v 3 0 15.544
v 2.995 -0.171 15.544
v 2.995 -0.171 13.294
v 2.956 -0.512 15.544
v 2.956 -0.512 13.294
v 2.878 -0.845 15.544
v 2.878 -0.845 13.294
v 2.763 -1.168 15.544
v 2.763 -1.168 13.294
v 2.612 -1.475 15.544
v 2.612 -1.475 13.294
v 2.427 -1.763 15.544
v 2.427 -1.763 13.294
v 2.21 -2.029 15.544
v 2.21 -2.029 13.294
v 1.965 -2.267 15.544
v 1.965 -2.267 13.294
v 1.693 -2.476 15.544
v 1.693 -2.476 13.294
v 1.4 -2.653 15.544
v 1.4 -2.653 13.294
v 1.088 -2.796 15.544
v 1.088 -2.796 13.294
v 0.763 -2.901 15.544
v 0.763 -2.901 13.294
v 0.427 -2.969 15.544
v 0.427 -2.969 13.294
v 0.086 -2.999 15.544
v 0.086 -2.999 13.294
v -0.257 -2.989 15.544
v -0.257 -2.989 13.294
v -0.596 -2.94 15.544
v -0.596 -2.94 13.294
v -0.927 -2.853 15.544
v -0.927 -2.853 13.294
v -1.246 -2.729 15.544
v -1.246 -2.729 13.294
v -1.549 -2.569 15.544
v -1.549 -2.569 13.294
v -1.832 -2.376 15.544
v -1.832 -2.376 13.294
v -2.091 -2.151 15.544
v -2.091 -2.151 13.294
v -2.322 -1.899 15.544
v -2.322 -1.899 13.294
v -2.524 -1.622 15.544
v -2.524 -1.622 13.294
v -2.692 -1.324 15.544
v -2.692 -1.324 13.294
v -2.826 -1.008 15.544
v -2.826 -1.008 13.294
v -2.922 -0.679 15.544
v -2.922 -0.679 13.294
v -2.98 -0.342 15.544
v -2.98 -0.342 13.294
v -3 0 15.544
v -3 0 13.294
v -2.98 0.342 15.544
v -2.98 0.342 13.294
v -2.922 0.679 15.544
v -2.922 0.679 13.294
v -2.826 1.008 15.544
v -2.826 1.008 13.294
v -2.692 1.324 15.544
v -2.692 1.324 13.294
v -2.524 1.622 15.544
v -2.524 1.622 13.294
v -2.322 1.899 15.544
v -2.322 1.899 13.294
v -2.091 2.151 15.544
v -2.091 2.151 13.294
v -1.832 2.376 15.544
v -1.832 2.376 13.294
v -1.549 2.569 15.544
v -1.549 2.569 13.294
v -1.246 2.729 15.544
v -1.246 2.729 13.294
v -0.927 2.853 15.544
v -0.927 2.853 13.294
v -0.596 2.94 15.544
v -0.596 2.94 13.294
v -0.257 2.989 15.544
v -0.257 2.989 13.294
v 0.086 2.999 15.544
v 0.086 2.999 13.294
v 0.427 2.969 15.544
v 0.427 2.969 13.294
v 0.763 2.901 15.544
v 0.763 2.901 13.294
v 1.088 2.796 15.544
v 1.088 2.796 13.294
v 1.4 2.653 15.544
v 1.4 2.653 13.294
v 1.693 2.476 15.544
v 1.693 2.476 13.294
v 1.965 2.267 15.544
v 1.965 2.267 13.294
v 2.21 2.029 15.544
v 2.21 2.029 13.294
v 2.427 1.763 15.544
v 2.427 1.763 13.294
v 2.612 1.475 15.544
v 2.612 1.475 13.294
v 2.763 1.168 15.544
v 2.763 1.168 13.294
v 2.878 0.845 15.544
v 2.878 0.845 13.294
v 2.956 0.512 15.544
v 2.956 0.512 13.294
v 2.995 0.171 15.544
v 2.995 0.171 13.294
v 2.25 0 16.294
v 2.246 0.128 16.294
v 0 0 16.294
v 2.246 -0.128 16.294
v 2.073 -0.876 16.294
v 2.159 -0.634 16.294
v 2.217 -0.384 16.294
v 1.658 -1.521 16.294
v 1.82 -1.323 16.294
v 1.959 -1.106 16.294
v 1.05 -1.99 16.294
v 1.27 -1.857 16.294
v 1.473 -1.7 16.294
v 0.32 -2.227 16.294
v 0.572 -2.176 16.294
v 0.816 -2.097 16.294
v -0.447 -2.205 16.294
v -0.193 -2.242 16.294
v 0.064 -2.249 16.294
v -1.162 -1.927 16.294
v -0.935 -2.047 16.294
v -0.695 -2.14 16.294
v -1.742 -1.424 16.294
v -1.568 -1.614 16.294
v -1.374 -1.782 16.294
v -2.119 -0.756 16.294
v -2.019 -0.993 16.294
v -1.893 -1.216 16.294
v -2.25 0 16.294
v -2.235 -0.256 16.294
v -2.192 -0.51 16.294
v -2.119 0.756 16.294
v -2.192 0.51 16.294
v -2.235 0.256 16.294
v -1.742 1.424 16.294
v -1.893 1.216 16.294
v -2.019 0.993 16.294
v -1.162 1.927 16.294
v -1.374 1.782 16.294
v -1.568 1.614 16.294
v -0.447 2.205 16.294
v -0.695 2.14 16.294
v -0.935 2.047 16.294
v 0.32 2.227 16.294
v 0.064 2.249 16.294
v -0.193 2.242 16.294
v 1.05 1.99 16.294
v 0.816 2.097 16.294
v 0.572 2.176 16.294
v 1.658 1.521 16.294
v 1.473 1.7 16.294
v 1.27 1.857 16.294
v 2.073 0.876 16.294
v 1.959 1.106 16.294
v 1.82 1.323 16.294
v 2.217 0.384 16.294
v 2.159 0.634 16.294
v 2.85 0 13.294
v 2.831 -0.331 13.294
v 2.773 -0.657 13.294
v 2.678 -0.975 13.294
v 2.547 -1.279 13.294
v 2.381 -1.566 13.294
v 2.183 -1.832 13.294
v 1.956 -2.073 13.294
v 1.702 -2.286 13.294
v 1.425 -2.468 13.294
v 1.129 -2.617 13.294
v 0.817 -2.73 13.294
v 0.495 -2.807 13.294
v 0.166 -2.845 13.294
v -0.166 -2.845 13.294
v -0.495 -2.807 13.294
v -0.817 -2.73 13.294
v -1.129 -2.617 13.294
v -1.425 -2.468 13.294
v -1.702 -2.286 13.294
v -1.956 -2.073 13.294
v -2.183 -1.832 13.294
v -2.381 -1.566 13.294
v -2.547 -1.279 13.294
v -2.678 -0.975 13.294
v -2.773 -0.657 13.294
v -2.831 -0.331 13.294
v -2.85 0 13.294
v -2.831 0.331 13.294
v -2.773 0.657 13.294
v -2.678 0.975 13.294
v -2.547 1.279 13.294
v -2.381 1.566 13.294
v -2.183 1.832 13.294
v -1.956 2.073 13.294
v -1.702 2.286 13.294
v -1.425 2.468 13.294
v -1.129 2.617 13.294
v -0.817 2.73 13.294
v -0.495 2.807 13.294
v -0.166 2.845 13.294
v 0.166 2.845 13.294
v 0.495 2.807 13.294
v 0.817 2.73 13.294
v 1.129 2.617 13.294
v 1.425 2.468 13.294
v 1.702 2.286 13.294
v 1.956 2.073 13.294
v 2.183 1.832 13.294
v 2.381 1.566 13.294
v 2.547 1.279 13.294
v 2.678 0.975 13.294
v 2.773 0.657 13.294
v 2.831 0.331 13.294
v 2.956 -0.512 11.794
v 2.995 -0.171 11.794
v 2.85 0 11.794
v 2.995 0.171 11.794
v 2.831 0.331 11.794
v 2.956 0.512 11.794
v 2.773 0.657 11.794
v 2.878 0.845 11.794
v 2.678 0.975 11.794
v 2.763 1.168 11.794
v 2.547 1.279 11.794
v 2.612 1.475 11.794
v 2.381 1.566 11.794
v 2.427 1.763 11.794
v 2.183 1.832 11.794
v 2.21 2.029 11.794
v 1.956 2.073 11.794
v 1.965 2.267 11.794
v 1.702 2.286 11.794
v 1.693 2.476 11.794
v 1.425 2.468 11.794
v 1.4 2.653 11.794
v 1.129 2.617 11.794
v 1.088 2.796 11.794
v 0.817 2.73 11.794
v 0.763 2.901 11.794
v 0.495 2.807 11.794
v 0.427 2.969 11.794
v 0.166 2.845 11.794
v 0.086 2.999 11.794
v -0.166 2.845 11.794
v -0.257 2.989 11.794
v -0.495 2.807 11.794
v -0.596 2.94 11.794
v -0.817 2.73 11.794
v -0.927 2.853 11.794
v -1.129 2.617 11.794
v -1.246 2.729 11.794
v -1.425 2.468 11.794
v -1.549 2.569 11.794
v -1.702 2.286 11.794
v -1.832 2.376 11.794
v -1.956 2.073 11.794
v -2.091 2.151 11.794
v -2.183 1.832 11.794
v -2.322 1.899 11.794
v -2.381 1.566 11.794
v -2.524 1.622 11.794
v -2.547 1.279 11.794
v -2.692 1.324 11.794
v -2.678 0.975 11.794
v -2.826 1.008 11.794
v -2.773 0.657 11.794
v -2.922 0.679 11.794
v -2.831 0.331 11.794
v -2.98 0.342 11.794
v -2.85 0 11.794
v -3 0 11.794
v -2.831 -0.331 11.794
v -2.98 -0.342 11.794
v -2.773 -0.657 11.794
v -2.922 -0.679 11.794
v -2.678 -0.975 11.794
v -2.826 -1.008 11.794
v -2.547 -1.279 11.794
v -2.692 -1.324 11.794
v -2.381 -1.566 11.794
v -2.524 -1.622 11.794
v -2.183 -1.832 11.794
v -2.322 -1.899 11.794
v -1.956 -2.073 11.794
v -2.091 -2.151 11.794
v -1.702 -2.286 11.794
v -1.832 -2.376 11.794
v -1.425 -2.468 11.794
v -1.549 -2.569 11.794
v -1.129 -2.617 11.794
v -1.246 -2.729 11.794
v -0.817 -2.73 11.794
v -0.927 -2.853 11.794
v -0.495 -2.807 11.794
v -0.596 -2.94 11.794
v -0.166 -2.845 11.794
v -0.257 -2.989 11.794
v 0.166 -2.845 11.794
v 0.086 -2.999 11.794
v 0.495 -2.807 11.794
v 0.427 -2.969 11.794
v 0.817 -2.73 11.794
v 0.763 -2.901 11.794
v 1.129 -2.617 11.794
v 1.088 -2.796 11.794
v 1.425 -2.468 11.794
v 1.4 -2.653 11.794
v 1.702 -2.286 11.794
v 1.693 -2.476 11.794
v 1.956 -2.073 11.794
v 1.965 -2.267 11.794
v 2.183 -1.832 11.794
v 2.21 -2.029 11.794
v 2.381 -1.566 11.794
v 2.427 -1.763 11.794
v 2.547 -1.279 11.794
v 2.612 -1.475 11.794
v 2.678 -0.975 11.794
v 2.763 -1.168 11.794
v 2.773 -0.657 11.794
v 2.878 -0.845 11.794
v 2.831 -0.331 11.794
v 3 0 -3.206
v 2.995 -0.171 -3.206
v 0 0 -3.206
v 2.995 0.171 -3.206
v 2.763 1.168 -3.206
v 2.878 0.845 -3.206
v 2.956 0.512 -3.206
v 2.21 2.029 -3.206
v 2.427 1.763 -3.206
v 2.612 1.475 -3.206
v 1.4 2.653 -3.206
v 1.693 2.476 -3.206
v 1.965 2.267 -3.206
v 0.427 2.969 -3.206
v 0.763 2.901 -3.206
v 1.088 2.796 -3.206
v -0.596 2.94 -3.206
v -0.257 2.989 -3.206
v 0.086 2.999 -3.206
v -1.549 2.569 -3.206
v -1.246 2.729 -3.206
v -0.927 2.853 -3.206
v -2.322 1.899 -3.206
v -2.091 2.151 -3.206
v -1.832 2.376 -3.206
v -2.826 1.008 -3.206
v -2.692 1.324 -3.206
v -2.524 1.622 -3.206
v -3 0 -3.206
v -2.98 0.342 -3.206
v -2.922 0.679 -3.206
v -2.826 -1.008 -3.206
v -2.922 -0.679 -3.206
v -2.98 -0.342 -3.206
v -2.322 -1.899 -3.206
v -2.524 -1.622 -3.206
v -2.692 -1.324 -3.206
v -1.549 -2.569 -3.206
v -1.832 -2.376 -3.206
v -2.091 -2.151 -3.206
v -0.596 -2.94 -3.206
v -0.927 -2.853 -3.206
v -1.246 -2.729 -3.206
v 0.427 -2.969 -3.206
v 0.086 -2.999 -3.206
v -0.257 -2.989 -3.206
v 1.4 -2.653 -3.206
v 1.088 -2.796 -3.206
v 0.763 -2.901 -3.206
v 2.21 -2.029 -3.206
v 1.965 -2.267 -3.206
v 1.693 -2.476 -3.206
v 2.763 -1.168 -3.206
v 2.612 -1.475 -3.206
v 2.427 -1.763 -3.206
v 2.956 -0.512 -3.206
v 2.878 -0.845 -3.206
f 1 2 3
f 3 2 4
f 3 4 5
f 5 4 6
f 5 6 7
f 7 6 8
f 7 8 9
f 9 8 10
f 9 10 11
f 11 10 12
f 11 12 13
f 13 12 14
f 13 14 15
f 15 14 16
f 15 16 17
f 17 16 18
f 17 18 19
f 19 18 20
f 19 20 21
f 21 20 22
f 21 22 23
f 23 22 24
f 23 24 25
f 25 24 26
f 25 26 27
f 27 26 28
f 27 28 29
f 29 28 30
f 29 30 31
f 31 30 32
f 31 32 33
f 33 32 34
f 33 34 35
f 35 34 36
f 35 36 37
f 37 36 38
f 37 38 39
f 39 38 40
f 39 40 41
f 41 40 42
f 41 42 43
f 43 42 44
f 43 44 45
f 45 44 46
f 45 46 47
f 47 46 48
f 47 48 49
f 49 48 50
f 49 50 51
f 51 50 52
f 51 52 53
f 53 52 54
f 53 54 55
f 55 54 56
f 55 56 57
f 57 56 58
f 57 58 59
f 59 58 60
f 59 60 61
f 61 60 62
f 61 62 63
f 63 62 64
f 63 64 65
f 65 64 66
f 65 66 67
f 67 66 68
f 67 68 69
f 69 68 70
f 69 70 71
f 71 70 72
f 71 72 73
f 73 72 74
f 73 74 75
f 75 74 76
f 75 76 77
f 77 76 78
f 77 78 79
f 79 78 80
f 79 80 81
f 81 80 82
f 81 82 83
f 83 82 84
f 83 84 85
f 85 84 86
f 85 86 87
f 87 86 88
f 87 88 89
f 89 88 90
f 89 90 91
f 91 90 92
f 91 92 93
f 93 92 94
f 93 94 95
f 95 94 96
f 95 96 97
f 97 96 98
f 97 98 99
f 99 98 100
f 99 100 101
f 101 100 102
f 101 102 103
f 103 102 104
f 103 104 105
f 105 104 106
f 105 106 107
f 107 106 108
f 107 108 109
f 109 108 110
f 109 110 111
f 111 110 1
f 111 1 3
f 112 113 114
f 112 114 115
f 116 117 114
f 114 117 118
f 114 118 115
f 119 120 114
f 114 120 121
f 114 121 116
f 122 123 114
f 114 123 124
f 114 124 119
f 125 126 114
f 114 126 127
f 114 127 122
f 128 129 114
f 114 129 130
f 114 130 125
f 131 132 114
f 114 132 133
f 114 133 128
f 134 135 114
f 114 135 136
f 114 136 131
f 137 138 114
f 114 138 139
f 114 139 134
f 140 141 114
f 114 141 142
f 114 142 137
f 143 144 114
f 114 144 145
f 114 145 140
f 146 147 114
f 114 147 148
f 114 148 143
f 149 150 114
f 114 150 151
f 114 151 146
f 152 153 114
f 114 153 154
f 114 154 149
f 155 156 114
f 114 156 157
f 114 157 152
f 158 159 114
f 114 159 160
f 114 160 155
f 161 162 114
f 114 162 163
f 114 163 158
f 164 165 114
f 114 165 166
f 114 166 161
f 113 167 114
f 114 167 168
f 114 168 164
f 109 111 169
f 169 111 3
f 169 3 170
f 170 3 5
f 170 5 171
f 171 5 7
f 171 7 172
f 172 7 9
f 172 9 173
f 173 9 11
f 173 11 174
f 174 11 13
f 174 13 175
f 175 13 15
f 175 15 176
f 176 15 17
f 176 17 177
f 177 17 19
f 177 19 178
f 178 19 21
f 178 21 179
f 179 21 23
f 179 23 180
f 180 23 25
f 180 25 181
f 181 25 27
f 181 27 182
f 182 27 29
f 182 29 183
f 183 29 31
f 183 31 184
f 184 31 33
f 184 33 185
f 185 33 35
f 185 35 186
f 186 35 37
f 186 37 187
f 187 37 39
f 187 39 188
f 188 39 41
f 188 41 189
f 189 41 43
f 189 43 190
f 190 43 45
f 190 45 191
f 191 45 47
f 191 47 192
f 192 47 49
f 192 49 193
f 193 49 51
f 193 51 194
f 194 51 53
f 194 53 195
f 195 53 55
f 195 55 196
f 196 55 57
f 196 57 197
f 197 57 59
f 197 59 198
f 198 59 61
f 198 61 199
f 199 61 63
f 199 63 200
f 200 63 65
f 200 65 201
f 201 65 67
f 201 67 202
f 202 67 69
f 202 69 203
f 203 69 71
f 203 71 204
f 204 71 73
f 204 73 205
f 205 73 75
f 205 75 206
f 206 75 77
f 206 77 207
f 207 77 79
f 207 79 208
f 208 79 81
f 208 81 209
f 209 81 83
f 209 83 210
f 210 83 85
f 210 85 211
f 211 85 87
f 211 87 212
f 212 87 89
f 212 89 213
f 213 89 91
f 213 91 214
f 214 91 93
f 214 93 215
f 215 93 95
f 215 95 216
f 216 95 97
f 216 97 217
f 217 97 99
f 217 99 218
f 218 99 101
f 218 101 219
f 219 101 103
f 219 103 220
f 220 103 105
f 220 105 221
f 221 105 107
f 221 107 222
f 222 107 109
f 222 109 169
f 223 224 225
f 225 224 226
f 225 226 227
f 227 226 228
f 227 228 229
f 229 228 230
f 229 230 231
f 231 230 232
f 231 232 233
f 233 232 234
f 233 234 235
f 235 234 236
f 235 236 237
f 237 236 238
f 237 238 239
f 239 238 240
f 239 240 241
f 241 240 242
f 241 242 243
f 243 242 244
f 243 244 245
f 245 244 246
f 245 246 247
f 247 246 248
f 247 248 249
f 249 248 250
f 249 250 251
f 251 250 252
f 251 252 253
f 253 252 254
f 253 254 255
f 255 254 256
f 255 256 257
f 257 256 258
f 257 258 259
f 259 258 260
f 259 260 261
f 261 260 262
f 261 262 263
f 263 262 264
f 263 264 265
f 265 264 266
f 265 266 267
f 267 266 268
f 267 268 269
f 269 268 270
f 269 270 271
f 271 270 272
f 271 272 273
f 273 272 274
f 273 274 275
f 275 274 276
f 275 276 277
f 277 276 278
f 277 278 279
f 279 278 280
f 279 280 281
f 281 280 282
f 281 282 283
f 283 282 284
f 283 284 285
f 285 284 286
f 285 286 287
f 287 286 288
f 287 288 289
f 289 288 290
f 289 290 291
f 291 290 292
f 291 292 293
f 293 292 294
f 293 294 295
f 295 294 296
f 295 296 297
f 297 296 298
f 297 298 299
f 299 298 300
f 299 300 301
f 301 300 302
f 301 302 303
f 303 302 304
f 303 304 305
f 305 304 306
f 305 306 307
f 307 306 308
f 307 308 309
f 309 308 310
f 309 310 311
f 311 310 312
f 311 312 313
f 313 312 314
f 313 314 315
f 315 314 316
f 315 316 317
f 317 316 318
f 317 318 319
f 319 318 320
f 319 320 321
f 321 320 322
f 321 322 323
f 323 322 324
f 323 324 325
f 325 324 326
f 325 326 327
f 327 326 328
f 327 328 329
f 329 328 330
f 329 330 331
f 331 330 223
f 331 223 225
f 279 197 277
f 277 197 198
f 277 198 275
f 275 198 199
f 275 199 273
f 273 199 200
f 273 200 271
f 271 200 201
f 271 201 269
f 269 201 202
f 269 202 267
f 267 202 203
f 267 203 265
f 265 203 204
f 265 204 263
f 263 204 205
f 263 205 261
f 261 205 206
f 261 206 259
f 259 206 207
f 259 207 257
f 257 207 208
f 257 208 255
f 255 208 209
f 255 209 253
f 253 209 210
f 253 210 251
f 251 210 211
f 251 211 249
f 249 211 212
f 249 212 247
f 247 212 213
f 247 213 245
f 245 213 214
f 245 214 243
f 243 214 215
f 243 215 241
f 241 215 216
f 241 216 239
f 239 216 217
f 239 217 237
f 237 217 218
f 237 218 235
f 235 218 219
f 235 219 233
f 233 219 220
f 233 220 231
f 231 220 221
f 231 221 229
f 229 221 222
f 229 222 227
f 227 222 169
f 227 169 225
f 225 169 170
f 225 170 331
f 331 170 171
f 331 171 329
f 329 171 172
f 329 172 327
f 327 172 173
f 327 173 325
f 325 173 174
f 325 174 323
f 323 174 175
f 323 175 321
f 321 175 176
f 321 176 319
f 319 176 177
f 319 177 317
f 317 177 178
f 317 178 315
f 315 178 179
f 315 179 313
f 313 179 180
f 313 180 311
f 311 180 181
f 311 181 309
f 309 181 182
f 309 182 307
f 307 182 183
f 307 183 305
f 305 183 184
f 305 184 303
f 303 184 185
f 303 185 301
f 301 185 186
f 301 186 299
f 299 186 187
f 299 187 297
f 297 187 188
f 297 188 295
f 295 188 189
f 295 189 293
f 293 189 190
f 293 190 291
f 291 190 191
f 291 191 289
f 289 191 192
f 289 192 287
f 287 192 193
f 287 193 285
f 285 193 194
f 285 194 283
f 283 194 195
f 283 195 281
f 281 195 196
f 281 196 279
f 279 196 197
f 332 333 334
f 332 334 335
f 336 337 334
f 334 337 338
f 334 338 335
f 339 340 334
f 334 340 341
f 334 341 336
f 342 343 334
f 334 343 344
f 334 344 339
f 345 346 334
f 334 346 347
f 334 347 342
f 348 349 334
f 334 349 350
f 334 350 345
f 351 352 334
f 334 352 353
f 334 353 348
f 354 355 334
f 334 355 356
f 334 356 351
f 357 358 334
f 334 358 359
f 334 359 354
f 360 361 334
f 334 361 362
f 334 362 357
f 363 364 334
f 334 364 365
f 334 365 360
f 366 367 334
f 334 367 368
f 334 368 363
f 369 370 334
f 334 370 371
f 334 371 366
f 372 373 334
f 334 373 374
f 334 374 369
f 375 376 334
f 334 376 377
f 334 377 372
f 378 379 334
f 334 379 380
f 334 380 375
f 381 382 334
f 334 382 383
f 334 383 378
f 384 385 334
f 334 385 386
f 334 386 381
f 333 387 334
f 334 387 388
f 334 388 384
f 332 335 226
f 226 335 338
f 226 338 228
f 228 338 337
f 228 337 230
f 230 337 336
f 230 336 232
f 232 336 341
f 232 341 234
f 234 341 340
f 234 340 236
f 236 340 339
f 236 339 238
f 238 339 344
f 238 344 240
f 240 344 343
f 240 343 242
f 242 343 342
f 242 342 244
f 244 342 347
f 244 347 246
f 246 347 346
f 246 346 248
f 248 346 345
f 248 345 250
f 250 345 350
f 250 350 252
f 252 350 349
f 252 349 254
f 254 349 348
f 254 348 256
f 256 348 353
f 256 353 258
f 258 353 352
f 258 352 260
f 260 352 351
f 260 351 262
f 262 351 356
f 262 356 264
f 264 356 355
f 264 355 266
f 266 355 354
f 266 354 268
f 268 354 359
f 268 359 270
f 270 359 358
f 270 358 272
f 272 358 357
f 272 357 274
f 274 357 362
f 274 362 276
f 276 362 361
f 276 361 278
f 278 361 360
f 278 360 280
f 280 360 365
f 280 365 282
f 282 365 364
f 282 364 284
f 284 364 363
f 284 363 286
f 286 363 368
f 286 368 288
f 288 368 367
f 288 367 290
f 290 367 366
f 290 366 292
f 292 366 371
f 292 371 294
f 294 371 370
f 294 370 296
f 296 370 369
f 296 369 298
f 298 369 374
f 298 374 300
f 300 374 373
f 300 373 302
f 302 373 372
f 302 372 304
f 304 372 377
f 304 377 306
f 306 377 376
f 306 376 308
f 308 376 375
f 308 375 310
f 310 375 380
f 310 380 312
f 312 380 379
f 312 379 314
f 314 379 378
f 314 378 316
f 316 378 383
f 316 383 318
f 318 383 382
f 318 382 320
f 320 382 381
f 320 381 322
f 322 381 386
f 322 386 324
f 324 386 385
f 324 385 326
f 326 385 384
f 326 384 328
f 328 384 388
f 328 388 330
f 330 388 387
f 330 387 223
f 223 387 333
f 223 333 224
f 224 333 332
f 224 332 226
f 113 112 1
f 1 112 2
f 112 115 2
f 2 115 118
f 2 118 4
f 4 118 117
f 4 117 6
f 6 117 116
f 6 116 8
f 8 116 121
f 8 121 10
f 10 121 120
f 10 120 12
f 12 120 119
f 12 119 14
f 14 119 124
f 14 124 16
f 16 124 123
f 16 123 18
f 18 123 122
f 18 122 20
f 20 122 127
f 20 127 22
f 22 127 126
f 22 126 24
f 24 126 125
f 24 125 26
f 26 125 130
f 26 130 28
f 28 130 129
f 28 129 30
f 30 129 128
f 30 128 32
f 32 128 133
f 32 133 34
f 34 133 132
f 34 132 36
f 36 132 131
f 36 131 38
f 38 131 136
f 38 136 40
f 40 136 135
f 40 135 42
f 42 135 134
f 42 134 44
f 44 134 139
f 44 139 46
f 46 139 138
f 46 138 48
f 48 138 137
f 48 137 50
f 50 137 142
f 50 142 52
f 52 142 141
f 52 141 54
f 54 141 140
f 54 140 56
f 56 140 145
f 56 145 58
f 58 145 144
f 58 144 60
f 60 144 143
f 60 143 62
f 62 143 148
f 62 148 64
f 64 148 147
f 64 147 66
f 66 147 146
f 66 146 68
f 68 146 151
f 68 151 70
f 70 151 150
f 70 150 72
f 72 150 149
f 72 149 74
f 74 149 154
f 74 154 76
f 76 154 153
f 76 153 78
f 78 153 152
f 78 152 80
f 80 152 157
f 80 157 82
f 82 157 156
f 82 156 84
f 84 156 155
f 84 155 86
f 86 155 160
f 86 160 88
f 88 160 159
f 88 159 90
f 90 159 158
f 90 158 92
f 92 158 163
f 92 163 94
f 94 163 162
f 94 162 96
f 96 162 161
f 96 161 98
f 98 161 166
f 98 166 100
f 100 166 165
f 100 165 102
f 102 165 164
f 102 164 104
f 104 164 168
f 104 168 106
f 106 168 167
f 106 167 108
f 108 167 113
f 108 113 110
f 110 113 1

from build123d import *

# Parameters (mm, degrees)
SKETCH1_R           = 2
BOSS_EXTRUDE1_DEPTH = 13
CUT_EXTRUDE1_START  = -10
SKETCH2_OUTSIDE_W   = 8.836
SKETCH2_OUTSIDE_H   = 8.836
SKETCH2_OUTSIDE_R   = 1.9
CUT_EXTRUDE1_DEPTH  = 1
CHAMFER1_SIZE       = 0.5
SCALE1_SCALE        = 1.5


with BuildPart() as part:
    # Sketch1 → Boss-Extrude1 (new body)
    with BuildSketch(Plane.XY):
        with Locations(Location((0, 0, 0), (0, 0, 180))):
            Circle(SKETCH1_R)
    extrude(amount=BOSS_EXTRUDE1_DEPTH)

    # Sketch2 outside → Cut-Extrude1 (cut)
    with BuildSketch(Plane(origin=(0, 0, 0), x_dir=(-1, 0, 0), z_dir=(0, 0, -1)).offset(CUT_EXTRUDE1_START)):
        Rectangle(SKETCH2_OUTSIDE_W, SKETCH2_OUTSIDE_H)
        Circle(SKETCH2_OUTSIDE_R, mode=Mode.SUBTRACT)
    extrude(amount=-CUT_EXTRUDE1_DEPTH, mode=Mode.SUBTRACT)

    # Chamfer1
    chamfer1_edges = [part.edges().sort_by_distance(p)[0] for p in [
        (2, 0, 13),
    ]]
    chamfer(chamfer1_edges, length=CHAMFER1_SIZE)


with BuildPart() as part_1:
    # Scale1: scaled about (0, 0, 6.412787951)
    add(part.part.scale(SCALE1_SCALE).moved(Location((0, 0, -3.206393976))))


solid = part_1.part
